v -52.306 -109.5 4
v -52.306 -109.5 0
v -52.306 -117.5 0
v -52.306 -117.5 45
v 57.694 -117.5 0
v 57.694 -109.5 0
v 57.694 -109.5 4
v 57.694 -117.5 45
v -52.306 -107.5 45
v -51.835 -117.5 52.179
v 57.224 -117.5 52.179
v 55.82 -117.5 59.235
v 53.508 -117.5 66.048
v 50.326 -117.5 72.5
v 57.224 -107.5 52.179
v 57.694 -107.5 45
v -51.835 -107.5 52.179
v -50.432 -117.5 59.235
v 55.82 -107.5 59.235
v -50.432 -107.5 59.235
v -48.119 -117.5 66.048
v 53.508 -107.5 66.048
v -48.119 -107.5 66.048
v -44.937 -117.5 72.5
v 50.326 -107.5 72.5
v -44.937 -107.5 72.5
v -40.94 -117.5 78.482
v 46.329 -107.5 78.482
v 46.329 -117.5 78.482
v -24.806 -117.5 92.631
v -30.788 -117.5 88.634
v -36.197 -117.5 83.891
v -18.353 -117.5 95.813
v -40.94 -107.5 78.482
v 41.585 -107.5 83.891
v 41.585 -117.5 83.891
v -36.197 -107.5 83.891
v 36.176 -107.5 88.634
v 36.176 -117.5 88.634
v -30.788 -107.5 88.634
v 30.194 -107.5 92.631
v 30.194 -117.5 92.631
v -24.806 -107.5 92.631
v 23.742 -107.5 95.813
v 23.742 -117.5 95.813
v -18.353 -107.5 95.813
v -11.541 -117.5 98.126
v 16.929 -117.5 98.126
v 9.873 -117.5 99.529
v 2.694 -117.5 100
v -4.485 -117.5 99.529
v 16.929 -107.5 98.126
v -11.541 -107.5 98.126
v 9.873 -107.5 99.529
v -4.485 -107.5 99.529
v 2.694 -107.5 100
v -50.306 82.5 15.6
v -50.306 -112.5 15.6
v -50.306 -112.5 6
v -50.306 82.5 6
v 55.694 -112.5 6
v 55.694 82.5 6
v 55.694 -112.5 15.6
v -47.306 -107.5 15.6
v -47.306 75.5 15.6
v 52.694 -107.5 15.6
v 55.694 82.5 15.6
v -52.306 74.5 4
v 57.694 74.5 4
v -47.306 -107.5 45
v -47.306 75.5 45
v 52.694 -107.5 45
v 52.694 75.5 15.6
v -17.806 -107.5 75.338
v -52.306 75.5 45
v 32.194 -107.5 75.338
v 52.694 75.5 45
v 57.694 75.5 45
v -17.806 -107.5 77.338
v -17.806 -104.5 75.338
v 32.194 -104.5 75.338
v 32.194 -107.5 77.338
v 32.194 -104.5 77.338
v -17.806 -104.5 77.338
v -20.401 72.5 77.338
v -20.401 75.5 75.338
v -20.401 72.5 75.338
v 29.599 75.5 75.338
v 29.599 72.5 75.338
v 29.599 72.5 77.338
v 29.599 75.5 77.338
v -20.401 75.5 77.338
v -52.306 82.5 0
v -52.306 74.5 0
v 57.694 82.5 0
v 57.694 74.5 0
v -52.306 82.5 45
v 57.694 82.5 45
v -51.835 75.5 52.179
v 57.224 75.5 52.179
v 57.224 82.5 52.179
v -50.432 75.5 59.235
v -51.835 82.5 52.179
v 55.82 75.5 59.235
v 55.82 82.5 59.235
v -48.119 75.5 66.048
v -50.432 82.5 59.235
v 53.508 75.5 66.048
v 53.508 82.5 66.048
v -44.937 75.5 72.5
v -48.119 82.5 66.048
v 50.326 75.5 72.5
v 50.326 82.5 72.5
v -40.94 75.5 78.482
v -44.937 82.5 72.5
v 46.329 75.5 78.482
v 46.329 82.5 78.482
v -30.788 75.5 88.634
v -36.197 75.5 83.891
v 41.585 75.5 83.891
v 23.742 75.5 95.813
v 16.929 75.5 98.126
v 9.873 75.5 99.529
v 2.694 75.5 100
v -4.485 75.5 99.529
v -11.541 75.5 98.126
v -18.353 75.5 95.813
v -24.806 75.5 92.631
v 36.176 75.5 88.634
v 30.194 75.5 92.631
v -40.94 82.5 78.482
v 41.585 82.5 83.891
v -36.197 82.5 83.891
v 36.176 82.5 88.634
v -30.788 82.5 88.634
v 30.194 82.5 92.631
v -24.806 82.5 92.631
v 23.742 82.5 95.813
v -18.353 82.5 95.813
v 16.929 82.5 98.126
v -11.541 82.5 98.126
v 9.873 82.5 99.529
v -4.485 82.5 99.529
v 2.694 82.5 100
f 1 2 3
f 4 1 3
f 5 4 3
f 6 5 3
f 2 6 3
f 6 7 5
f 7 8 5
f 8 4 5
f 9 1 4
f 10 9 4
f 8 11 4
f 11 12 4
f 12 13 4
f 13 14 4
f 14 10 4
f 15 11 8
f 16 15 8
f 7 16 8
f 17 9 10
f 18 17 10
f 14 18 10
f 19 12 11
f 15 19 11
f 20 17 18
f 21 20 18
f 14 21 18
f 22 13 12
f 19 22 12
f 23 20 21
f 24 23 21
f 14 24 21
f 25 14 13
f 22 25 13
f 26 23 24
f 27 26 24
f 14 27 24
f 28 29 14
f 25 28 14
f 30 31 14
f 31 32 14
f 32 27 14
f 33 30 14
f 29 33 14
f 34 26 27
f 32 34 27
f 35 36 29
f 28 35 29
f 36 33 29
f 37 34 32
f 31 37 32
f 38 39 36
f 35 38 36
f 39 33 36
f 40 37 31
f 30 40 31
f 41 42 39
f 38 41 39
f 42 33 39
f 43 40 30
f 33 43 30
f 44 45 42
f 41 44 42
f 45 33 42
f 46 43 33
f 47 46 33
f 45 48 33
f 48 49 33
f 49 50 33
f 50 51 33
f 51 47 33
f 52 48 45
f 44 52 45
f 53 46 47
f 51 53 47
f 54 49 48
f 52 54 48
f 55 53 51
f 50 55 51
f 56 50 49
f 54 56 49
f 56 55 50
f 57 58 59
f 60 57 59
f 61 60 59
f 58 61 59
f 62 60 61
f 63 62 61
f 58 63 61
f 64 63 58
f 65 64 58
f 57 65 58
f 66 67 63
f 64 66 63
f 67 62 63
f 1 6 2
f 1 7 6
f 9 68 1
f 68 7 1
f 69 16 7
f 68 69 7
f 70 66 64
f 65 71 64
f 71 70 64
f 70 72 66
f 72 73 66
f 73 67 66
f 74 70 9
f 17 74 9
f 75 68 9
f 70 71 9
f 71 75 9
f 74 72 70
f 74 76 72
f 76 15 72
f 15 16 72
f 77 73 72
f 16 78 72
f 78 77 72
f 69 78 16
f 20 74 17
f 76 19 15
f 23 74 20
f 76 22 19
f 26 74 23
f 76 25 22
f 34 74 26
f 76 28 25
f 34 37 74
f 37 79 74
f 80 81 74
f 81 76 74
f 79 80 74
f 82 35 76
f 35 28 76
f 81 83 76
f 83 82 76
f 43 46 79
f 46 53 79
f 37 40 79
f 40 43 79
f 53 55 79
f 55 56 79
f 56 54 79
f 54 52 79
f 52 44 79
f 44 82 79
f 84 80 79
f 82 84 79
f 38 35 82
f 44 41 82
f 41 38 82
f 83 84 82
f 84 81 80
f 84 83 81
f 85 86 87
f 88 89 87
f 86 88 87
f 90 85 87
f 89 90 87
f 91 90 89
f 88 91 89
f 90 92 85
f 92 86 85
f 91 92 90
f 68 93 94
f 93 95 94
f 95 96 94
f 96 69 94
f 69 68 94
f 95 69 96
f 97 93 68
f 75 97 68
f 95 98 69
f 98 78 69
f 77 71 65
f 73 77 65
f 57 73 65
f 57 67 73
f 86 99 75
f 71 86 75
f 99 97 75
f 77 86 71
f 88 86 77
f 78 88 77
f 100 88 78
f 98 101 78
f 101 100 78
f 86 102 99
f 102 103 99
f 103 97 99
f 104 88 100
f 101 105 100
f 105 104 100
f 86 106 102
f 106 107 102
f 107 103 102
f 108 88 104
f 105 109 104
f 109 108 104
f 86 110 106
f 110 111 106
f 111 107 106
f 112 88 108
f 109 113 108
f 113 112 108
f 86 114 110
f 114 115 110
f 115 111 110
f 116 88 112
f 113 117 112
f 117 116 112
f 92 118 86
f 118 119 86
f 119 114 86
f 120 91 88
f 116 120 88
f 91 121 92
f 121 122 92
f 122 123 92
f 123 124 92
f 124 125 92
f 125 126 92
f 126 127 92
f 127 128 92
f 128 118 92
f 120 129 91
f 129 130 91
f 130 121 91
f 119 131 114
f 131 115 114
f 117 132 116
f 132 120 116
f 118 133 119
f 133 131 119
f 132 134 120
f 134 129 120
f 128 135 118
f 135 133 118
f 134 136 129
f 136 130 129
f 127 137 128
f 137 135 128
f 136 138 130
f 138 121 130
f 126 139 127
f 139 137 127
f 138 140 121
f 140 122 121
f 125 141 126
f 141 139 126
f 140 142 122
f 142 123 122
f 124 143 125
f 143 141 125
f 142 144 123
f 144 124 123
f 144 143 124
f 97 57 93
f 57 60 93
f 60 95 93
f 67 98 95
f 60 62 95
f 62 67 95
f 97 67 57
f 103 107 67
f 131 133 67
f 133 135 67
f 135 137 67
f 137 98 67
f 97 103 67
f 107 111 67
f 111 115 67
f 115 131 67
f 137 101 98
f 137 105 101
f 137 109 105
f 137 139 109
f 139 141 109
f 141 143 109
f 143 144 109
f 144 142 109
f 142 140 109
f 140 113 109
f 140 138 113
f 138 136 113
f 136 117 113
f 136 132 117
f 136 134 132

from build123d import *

# Parameters (mm, degrees)
SKETCH_14_W         = 110
SKETCH_14_H         = 200
EXTRUDE_11_DEPTH    = 15
SKETCH_15_W         = 5
SKETCH_15_H         = 200
EXTRUDE_12_DEPTH    = 30
EXTRUDE_14_DEPTH    = 10
EXTRUDE_15_DEPTH    = 7
SKETCH_19_W         = 4
SKETCH_19_H         = 184
CUT_EXTRUDE_1_DEPTH = 190.489445616
SKETCH_22_W         = 50
SKETCH_22_H         = 2
EXTRUDE_17_DEPTH    = 3
SKETCH_23_W         = 50
SKETCH_23_H         = 2
EXTRUDE_18_DEPTH    = 3
SKETCH_24_W         = 106
SKETCH_24_H         = 9.6
CUT_EXTRUDE_2_DEPTH = 195


with BuildPart() as part:
    # 草圖14 → 填料-伸長11 (new body)
    with BuildSketch(Plane.XY):
        with Locations((2.694256757, -17.5)):
            Rectangle(SKETCH_14_W, SKETCH_14_H)
    extrude(amount=EXTRUDE_11_DEPTH)

    # 草圖15 → 填料-伸長12 (add)
    with BuildSketch(Plane.XY.offset(15)):
        with Locations((-49.805743243, -17.5)):
            Rectangle(SKETCH_15_W, SKETCH_15_H)
        with Locations((55.194256757, -17.5)):
            Rectangle(SKETCH_15_W, SKETCH_15_H)
    extrude(amount=EXTRUDE_12_DEPTH)

    # 草圖18 → 填料-伸長15 (add)
    with BuildSketch(Plane(origin=(0, 82.5, 0), x_dir=(1, 0, 0), z_dir=(0, 1, 0))):
        with BuildLine():
            Line((-52.305743243, -15), (-52.305743243, -45))
            ThreePointArc((-52.305743243, -45), (2.694256757, -100), (57.694256757, -45))
            Line((57.694256757, -45), (57.694256757, -15))
            Line((57.694256757, -15), (-52.305743243, -15))
        make_face()
    extrude(amount=-EXTRUDE_15_DEPTH)

    # 草圖19 → 除料-伸長1 (cut, through all)
    with BuildSketch(Plane.ZY.offset(52.305743243)):
        with Locations((2, -17.5)):
            Rectangle(SKETCH_19_W, SKETCH_19_H)
    extrude(amount=-CUT_EXTRUDE_1_DEPTH, mode=Mode.SUBTRACT)


with BuildPart() as body_2:
    # 草圖17 → 填料-伸長14 (new body)
    with BuildSketch(Plane.XZ.offset(117.5)):
        with BuildLine():
            Line((-52.305743243, 15), (-52.305743243, 45))
            ThreePointArc((-52.305743243, 45), (2.694256757, 100), (57.694256757, 45))
            Line((57.694256757, 45), (57.694256757, 15))
            Line((57.694256757, 15), (-52.305743243, 15))
        make_face()
    extrude(amount=-EXTRUDE_14_DEPTH)


    add(part.part)  # 填料-伸長17 merges part
    # 草圖22 → 填料-伸長17 (add)
    with BuildSketch(Plane(origin=(0, -107.5, 0), x_dir=(1, 0, 0), z_dir=(0, 1, 0))):
        with Locations((7.194256757, -76.338233374)):
            Rectangle(SKETCH_22_W, SKETCH_22_H)
    extrude(amount=EXTRUDE_17_DEPTH)

    # 草圖23 → 填料-伸長18 (add)
    with BuildSketch(Plane.XZ.offset(-75.5)):
        with Locations((4.598650287, 76.338233374)):
            Rectangle(SKETCH_23_W, SKETCH_23_H)
    extrude(amount=EXTRUDE_18_DEPTH)

    # 草圖24 → 除料-伸長2 (cut)
    with BuildSketch(Plane(origin=(0, 82.5, 0), x_dir=(1, 0, 0), z_dir=(0, 1, 0))):
        with Locations((2.694256757, -10.8)):
            Rectangle(SKETCH_24_W, SKETCH_24_H)
    extrude(amount=-CUT_EXTRUDE_2_DEPTH, mode=Mode.SUBTRACT)


solid = body_2.part
